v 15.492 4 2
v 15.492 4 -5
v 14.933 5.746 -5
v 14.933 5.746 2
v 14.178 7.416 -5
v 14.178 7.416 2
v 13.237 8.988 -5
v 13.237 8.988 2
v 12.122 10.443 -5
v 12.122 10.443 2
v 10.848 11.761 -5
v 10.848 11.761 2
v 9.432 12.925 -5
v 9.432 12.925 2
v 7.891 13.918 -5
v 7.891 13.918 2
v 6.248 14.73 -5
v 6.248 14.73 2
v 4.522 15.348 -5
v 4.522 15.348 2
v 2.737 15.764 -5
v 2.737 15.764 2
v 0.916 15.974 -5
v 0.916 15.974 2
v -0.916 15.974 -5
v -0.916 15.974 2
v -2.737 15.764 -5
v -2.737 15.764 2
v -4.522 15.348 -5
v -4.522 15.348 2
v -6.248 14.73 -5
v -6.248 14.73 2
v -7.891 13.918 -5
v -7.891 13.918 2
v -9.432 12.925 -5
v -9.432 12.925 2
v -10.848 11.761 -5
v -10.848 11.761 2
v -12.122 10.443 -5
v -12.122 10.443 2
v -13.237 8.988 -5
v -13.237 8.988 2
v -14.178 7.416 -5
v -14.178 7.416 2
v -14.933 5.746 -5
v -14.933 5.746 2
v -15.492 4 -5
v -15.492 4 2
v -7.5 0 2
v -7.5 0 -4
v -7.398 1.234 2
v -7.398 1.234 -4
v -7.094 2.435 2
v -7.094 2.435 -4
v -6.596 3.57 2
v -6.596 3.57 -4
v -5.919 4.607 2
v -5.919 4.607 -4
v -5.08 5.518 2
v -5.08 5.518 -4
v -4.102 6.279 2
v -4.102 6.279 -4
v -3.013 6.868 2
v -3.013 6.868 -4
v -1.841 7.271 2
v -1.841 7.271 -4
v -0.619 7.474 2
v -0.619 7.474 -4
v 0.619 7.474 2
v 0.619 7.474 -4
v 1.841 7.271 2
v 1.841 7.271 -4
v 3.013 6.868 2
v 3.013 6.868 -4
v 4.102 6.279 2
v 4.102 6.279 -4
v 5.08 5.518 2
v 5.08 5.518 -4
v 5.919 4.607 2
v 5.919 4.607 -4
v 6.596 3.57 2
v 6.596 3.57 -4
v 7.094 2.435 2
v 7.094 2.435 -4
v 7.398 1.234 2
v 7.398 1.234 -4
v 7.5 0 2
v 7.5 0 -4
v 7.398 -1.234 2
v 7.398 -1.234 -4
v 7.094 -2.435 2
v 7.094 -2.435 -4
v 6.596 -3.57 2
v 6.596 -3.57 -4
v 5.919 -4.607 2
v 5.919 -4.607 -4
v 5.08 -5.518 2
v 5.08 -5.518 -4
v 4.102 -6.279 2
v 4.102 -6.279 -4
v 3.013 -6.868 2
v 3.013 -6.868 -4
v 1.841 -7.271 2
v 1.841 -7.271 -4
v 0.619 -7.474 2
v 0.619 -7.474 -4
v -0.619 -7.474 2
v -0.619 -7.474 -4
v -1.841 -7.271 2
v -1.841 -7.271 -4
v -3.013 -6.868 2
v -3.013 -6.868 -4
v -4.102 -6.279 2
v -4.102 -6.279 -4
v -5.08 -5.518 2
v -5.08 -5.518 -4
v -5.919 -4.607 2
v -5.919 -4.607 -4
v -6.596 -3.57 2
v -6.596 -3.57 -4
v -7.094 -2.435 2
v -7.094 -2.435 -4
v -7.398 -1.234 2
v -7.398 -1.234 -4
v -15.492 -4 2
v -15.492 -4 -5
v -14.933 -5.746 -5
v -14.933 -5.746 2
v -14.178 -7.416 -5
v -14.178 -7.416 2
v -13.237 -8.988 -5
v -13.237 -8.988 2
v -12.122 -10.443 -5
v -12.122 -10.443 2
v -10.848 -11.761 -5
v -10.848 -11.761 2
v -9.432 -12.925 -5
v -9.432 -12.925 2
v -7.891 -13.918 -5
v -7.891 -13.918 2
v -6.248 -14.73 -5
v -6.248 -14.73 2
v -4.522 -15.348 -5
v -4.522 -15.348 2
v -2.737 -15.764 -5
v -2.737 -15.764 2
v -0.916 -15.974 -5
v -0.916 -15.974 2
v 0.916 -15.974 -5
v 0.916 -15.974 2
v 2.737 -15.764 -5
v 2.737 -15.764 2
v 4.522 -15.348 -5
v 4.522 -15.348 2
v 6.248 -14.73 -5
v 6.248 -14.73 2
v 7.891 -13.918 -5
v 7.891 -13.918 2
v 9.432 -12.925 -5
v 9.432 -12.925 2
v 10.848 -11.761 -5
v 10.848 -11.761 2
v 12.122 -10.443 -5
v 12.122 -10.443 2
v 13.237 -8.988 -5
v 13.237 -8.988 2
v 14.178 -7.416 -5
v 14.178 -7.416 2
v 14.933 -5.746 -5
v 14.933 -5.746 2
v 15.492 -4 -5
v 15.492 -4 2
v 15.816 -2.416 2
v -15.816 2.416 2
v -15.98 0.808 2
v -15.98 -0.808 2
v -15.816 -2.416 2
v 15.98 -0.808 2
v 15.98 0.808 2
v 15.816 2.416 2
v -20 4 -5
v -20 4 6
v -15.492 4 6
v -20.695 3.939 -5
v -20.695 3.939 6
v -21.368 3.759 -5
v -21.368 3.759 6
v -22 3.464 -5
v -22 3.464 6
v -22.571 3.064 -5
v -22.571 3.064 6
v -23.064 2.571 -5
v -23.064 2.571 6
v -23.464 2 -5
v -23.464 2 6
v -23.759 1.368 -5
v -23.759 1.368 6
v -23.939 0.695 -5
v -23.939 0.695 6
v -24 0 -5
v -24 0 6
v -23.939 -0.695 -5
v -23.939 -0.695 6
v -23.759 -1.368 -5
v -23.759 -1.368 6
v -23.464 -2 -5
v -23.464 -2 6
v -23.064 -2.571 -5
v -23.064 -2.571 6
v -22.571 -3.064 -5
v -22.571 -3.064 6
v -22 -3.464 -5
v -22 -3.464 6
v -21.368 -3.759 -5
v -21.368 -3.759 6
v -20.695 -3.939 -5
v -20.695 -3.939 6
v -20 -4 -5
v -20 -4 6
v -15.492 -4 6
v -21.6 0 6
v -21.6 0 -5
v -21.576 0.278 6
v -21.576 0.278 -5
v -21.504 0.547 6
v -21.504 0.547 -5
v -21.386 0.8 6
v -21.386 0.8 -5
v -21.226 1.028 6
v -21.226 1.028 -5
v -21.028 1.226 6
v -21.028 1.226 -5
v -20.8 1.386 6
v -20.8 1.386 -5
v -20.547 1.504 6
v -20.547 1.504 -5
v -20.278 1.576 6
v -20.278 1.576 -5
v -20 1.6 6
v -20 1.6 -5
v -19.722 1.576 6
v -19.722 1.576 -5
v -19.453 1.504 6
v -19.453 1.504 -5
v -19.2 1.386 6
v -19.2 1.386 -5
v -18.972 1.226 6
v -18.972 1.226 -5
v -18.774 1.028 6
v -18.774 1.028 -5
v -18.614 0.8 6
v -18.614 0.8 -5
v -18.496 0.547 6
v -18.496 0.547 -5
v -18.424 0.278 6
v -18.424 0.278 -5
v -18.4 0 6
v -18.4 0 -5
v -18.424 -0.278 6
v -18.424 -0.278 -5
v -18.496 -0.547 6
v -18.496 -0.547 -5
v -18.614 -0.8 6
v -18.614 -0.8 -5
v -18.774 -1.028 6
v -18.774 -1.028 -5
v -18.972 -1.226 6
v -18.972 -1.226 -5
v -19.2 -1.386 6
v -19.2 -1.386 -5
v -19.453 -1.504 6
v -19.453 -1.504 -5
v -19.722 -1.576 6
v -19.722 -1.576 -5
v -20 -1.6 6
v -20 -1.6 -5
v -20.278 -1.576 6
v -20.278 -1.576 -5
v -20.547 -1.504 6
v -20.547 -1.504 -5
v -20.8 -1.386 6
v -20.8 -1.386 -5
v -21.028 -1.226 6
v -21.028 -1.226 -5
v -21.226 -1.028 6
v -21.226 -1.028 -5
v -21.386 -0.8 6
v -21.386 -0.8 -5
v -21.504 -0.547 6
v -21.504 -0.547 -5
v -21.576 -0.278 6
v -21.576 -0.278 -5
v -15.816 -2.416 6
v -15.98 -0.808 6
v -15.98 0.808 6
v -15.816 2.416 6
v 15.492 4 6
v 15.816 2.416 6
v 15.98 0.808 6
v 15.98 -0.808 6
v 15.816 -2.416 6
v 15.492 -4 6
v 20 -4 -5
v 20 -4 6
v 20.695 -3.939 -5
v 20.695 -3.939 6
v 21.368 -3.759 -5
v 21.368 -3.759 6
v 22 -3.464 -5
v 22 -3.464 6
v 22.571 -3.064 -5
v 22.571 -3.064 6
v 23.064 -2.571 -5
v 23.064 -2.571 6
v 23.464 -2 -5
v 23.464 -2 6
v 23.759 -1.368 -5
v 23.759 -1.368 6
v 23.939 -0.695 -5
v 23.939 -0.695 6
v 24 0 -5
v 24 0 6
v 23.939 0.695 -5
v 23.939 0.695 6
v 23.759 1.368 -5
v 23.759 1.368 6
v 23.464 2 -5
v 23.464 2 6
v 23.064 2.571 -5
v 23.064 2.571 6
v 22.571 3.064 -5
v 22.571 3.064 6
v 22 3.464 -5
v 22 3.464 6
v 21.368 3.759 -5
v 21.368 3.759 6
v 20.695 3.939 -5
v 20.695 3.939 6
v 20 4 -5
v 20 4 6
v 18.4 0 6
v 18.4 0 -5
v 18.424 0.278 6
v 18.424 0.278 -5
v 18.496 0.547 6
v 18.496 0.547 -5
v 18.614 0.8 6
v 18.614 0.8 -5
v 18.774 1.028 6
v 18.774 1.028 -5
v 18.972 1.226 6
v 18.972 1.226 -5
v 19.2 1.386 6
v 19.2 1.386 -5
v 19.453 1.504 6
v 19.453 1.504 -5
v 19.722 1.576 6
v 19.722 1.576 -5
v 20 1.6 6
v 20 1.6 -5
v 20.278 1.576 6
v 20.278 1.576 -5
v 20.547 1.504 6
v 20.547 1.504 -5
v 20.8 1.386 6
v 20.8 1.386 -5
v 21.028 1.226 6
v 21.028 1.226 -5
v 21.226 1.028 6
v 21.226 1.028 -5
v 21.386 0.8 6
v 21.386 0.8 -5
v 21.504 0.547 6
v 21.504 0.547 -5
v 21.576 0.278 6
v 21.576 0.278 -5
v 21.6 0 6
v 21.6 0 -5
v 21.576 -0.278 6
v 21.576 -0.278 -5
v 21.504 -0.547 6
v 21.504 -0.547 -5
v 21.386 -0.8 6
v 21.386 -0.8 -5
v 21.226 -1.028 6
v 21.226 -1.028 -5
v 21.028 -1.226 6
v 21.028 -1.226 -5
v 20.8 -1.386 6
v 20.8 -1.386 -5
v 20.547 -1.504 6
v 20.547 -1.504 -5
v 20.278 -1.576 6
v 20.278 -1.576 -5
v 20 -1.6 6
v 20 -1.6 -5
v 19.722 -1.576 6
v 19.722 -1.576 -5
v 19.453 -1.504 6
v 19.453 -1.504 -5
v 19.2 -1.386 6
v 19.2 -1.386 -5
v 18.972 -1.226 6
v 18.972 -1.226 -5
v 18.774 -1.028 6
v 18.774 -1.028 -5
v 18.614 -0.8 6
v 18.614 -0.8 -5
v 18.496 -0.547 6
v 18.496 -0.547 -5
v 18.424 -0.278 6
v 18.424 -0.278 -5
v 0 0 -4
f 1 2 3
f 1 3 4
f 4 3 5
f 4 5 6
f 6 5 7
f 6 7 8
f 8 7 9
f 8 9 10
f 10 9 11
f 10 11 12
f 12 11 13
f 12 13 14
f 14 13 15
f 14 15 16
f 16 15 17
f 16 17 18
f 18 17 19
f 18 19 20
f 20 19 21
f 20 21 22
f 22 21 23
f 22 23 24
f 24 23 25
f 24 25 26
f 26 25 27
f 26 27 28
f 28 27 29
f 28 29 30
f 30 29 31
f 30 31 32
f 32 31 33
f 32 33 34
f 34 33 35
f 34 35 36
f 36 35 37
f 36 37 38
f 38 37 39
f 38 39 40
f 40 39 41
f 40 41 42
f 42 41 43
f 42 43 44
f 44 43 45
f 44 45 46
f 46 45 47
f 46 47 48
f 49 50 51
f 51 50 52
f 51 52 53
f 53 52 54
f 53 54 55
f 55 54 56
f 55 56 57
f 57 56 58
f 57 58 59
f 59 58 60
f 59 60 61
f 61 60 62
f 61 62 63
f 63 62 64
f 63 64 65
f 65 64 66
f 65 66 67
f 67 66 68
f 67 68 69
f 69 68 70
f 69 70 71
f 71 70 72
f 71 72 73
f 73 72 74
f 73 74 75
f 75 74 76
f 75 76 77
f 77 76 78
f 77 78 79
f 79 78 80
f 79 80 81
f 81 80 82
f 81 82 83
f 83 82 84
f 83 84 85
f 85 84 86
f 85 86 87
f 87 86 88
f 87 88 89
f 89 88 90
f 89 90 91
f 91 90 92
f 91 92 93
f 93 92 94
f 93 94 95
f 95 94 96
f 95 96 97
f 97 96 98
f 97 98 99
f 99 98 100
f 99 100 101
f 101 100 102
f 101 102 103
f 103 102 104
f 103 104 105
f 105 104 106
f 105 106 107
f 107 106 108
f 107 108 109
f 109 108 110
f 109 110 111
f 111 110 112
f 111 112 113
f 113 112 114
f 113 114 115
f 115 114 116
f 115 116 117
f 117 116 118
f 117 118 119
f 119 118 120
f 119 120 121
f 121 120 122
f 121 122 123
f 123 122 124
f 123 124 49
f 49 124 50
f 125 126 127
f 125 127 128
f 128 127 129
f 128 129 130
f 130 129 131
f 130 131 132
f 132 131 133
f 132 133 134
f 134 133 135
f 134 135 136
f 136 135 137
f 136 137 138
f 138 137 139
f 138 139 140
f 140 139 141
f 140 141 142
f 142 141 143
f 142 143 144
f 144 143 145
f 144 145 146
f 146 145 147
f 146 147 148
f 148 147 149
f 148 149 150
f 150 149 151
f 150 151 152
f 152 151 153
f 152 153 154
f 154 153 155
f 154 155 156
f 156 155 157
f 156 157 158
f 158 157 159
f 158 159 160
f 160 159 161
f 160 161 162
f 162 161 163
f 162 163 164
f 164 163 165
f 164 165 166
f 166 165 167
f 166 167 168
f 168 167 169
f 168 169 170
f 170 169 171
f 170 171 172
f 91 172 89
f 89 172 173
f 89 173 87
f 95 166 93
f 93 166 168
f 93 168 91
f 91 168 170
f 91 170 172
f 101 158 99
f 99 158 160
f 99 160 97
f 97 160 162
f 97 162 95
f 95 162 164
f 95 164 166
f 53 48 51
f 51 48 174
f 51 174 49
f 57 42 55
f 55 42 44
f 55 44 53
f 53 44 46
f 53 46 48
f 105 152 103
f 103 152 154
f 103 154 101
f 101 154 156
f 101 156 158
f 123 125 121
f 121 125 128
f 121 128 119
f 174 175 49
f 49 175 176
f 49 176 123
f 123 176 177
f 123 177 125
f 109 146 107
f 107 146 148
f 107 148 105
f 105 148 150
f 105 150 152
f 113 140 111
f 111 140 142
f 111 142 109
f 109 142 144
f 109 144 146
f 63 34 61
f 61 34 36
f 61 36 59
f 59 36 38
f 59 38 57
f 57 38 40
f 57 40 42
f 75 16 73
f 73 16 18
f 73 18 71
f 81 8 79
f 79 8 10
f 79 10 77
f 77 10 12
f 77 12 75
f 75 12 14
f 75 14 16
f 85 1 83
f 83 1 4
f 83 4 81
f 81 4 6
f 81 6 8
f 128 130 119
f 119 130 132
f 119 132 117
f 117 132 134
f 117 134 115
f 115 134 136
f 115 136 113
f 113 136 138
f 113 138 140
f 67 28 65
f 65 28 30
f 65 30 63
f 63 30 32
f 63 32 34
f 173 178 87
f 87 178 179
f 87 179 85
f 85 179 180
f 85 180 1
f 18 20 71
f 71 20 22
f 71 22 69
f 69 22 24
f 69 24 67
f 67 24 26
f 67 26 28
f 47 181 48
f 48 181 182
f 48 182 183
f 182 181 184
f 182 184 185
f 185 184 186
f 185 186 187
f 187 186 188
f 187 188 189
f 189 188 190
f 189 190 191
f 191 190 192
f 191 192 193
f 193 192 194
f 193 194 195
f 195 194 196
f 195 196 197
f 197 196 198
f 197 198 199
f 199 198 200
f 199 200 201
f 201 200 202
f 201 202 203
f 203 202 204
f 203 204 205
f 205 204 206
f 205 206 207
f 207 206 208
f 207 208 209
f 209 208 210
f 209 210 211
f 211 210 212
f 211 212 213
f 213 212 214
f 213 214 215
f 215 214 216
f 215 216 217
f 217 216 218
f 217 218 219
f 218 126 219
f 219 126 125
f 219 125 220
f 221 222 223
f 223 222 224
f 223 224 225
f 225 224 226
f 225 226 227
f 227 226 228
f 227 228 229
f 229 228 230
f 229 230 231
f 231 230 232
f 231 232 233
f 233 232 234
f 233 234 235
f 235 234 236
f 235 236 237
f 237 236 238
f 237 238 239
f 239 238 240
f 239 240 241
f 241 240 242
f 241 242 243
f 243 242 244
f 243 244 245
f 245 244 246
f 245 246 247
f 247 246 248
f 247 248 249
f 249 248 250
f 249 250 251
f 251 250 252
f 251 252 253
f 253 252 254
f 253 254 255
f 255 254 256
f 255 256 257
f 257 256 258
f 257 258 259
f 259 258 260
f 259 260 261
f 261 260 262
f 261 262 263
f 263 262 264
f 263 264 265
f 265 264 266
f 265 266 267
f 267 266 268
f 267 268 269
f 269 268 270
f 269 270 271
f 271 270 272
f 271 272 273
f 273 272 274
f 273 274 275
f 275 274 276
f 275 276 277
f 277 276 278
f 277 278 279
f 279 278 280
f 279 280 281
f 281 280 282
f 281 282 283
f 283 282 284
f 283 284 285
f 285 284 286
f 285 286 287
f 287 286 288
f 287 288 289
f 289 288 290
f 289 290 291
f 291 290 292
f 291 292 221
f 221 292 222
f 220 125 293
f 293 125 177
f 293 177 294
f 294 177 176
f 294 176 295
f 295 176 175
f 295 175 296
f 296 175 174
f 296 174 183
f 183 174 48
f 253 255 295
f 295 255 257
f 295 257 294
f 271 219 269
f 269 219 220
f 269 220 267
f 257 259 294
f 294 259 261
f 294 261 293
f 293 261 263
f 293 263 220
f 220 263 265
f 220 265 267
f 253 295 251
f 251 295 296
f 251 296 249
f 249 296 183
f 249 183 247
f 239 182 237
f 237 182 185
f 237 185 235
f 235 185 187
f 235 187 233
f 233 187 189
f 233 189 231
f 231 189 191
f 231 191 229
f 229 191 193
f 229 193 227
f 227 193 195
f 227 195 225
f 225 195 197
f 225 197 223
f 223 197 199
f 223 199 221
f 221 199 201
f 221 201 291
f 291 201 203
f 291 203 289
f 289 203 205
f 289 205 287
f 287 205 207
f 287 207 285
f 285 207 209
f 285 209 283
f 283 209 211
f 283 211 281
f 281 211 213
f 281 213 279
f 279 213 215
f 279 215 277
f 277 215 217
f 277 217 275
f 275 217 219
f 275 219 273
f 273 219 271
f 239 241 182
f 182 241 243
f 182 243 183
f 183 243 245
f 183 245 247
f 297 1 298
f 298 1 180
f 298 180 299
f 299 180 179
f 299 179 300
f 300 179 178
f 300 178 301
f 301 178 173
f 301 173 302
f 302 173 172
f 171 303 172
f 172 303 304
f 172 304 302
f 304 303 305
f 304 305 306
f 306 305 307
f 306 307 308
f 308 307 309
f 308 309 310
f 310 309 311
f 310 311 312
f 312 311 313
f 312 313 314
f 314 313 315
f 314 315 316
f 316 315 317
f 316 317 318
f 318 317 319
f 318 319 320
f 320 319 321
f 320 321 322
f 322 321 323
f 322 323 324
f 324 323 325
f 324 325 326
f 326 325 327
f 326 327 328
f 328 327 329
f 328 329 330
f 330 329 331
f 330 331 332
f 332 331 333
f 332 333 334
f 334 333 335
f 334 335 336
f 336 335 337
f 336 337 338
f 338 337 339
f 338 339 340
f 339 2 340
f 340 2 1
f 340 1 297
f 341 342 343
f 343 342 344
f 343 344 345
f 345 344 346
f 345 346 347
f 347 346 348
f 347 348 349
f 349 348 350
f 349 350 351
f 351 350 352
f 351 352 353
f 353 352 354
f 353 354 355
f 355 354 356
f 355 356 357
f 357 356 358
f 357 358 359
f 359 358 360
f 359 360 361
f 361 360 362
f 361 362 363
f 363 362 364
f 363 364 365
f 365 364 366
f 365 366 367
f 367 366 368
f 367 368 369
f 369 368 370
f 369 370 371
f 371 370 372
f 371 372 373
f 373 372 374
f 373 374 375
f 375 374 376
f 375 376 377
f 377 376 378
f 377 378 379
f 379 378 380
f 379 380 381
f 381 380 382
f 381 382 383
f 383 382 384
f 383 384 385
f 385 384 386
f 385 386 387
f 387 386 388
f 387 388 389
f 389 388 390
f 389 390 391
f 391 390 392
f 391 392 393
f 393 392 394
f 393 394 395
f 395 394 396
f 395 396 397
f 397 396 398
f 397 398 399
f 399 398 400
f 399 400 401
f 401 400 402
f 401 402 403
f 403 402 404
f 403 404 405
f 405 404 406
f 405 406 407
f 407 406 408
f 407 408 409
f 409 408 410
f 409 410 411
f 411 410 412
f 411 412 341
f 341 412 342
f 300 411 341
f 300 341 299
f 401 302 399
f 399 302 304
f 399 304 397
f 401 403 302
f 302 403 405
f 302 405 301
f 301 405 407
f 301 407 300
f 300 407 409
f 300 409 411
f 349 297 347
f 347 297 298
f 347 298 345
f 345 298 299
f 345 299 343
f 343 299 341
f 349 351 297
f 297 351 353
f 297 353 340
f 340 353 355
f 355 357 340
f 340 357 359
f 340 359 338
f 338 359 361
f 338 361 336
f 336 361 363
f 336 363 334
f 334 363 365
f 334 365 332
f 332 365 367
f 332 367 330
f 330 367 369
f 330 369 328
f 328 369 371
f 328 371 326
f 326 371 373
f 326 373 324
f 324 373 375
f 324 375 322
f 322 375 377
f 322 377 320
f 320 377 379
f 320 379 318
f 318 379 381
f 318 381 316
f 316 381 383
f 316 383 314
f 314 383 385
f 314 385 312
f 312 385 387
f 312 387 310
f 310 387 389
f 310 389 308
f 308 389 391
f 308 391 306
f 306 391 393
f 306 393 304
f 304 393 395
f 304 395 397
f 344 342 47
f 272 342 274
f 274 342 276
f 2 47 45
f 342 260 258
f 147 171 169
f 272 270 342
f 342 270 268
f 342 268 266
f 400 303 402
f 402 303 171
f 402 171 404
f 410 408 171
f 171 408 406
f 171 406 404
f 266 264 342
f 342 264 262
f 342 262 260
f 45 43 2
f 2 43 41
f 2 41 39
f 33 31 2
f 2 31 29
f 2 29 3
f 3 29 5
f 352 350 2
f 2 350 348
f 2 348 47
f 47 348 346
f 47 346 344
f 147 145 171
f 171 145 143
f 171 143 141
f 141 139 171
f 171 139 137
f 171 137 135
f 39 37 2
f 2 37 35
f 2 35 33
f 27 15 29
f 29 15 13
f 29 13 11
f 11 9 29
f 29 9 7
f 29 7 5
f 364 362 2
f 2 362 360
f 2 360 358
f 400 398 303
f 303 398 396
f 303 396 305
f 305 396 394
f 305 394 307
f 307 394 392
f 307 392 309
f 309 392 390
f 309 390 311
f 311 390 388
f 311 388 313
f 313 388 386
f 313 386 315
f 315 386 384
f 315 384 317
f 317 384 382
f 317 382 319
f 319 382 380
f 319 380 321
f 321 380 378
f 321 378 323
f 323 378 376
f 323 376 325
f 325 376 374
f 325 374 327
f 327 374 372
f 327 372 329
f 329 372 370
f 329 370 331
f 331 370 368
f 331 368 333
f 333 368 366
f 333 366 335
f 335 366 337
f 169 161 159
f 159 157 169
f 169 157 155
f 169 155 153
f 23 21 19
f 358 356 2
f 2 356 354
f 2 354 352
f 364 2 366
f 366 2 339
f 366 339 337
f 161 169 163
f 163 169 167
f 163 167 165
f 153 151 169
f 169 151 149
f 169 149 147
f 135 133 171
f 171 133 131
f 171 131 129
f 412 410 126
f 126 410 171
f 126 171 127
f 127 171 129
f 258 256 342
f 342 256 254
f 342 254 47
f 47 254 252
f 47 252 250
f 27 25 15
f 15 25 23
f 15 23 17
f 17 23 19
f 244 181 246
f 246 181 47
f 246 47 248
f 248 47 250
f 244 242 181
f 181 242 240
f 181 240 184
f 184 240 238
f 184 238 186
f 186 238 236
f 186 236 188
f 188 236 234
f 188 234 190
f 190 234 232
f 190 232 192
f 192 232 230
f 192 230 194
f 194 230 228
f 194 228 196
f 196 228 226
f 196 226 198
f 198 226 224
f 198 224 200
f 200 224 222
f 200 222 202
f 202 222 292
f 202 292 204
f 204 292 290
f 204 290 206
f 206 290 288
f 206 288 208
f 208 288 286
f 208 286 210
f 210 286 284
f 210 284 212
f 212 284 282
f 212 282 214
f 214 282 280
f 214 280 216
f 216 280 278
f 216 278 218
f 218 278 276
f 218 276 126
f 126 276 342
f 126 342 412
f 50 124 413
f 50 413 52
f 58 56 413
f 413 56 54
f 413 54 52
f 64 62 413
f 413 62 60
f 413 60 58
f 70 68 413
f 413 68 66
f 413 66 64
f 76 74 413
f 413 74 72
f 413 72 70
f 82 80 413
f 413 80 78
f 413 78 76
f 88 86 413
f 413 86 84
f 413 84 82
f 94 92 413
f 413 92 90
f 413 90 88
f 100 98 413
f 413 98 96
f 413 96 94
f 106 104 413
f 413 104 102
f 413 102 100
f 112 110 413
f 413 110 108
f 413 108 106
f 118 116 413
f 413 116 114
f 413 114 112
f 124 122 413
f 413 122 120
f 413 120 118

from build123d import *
from build123d.topology import SkipClean

# Parameters (mm, degrees)
BOSS_EXTRUDE1_DEPTH = 2
SKETCH2_R           = 1.6
BOSS_EXTRUDE3_DEPTH = 6
BOSS_EXTRUDE4_START = 4
SKETCH5_R           = 16
SKETCH5_R_2         = 7.5
BOSS_EXTRUDE4_DEPTH = 4
BOSS_EXTRUDE7_START = 1
SKETCH6_R           = 16
BOSS_EXTRUDE7_DEPTH = 1
BOSS_EXTRUDE8_START = -5
SKETCH7_R           = 1.6
BOSS_EXTRUDE8_DEPTH = 5


with BuildPart() as part:
    # Sketch1 → Boss-Extrude1 (new body)
    # profile 1 of 2: a face of its own
    with BuildSketch(Plane.XY):
        with BuildLine():
            ThreePointArc((15.491933385, 4), (9.797958971, 12.649110641), (0, 16))
            ThreePointArc((0, 16), (-9.797958971, 12.649110641), (-15.491933385, 4))
            ThreePointArc((-15.491933385, 4), (-16, 0), (-15.491933385, -4))
            ThreePointArc((-15.491933385, -4), (0, -16), (15.491933385, -4))
            ThreePointArc((15.491933385, -4), (15.87247514, -2.01606868), (16, 0))
            ThreePointArc((16, 0), (15.87247514, 2.01606868), (15.491933385, 4))
        make_face()
        with BuildLine():
            ThreePointArc((7.5, 0), (-5.303300859, -5.303300859), (0, 7.5))
            ThreePointArc((0, 7.5), (5.303300859, 5.303300859), (7.5, 0))
        make_face(mode=Mode.SUBTRACT)
    # profile 2 of 2: a face of its own
    with BuildSketch(Plane.XY):
        with BuildLine():
            ThreePointArc((15.491933385, 4), (9.797958971, 12.649110641), (0, 16))
            ThreePointArc((0, 16), (-9.797958971, 12.649110641), (-15.491933385, 4))
            ThreePointArc((-15.491933385, 4), (-16, 0), (-15.491933385, -4))
            ThreePointArc((-15.491933385, -4), (0, -16), (15.491933385, -4))
            ThreePointArc((15.491933385, -4), (15.87247514, -2.01606868), (16, 0))
            ThreePointArc((16, 0), (15.87247514, 2.01606868), (15.491933385, 4))
        make_face()
        with BuildLine():
            ThreePointArc((7.5, 0), (-5.303300859, -5.303300859), (0, 7.5))
            ThreePointArc((0, 7.5), (5.303300859, 5.303300859), (7.5, 0))
        make_face(mode=Mode.SUBTRACT)
    extrude(amount=BOSS_EXTRUDE1_DEPTH)

    # Sketch2 → Boss-Extrude3 (add)
    # profile 1 of 2: a face of its own
    with BuildSketch(Plane.XY):
        with BuildLine():
            Line((-20, -4), (-15.491933385, -4))
            ThreePointArc((-15.491933385, -4), (-16, 0), (-15.491933385, 4))
            Line((-15.491933385, 4), (-20, 4))
            ThreePointArc((-20, 4), (-24, 0), (-20, -4))
        make_face()
        with Locations((-20, 0)):
            Circle(SKETCH2_R, mode=Mode.SUBTRACT)
    # profile 2 of 2: a face of its own
    with BuildSketch(Plane.XY):
        with BuildLine():
            Line((15.491933385, -4), (20, -4))
            ThreePointArc((20, -4), (24, 0), (20, 4))
            Line((20, 4), (15.491933385, 4))
            ThreePointArc((15.491933385, 4), (15.87247514, 2.01606868), (16, 0))
            ThreePointArc((16, 0), (15.87247514, -2.01606868), (15.491933385, -4))
        make_face()
        with Locations((20, 0)):
            Circle(SKETCH2_R, mode=Mode.SUBTRACT)
    extrude(amount=BOSS_EXTRUDE3_DEPTH)

    # Sketch5 → Boss-Extrude4 (add)
    with SkipClean():  # the faces are left unmerged after this step: merging them gives an invalid solid
        with BuildSketch(Plane(origin=(0, 0, 0), x_dir=(-1, 0, 0), z_dir=(0, 0, -1)).offset(BOSS_EXTRUDE4_START)):
            Circle(SKETCH5_R)
            Circle(SKETCH5_R_2, mode=Mode.SUBTRACT)
        extrude(amount=-BOSS_EXTRUDE4_DEPTH)

    # Sketch6 → Boss-Extrude7 (add)
    with SkipClean():  # the faces are left unmerged after this step: merging them gives an invalid solid
        with BuildSketch(Plane(origin=(0, 0, -4), x_dir=(-1, 0, 0), z_dir=(0, 0, -1)).offset(BOSS_EXTRUDE7_START)):
            Circle(SKETCH6_R)
        extrude(amount=-BOSS_EXTRUDE7_DEPTH)

    # Sketch7 → Boss-Extrude8 (add)
    # profile 1 of 2: a face of its own
    with SkipClean():  # the faces are left unmerged after this step: merging them gives an invalid solid
        with BuildSketch(Plane.XY.offset(BOSS_EXTRUDE8_START)):
            with BuildLine():
                Line((15.491933385, -4), (20, -4))
                ThreePointArc((20, -4), (24, 0), (20, 4))
                Line((20, 4), (15.491933385, 4))
                ThreePointArc((15.491933385, 4), (15.87247514, 2.01606868), (16, 0))
                ThreePointArc((16, 0), (15.87247514, -2.01606868), (15.491933385, -4))
            make_face()
            with Locations((20, 0)):
                Circle(SKETCH7_R, mode=Mode.SUBTRACT)
        # profile 2 of 2: a face of its own
        with BuildSketch(Plane.XY.offset(BOSS_EXTRUDE8_START)):
            with BuildLine():
                Line((-20, -4), (-15.491933385, -4))
                ThreePointArc((-15.491933385, -4), (-16, 0), (-15.491933385, 4))
                Line((-15.491933385, 4), (-20, 4))
                ThreePointArc((-20, 4), (-24, 0), (-20, -4))
            make_face()
            with Locations((-20, 0)):
                Circle(SKETCH7_R, mode=Mode.SUBTRACT)
        extrude(amount=BOSS_EXTRUDE8_DEPTH)


solid = part.part
